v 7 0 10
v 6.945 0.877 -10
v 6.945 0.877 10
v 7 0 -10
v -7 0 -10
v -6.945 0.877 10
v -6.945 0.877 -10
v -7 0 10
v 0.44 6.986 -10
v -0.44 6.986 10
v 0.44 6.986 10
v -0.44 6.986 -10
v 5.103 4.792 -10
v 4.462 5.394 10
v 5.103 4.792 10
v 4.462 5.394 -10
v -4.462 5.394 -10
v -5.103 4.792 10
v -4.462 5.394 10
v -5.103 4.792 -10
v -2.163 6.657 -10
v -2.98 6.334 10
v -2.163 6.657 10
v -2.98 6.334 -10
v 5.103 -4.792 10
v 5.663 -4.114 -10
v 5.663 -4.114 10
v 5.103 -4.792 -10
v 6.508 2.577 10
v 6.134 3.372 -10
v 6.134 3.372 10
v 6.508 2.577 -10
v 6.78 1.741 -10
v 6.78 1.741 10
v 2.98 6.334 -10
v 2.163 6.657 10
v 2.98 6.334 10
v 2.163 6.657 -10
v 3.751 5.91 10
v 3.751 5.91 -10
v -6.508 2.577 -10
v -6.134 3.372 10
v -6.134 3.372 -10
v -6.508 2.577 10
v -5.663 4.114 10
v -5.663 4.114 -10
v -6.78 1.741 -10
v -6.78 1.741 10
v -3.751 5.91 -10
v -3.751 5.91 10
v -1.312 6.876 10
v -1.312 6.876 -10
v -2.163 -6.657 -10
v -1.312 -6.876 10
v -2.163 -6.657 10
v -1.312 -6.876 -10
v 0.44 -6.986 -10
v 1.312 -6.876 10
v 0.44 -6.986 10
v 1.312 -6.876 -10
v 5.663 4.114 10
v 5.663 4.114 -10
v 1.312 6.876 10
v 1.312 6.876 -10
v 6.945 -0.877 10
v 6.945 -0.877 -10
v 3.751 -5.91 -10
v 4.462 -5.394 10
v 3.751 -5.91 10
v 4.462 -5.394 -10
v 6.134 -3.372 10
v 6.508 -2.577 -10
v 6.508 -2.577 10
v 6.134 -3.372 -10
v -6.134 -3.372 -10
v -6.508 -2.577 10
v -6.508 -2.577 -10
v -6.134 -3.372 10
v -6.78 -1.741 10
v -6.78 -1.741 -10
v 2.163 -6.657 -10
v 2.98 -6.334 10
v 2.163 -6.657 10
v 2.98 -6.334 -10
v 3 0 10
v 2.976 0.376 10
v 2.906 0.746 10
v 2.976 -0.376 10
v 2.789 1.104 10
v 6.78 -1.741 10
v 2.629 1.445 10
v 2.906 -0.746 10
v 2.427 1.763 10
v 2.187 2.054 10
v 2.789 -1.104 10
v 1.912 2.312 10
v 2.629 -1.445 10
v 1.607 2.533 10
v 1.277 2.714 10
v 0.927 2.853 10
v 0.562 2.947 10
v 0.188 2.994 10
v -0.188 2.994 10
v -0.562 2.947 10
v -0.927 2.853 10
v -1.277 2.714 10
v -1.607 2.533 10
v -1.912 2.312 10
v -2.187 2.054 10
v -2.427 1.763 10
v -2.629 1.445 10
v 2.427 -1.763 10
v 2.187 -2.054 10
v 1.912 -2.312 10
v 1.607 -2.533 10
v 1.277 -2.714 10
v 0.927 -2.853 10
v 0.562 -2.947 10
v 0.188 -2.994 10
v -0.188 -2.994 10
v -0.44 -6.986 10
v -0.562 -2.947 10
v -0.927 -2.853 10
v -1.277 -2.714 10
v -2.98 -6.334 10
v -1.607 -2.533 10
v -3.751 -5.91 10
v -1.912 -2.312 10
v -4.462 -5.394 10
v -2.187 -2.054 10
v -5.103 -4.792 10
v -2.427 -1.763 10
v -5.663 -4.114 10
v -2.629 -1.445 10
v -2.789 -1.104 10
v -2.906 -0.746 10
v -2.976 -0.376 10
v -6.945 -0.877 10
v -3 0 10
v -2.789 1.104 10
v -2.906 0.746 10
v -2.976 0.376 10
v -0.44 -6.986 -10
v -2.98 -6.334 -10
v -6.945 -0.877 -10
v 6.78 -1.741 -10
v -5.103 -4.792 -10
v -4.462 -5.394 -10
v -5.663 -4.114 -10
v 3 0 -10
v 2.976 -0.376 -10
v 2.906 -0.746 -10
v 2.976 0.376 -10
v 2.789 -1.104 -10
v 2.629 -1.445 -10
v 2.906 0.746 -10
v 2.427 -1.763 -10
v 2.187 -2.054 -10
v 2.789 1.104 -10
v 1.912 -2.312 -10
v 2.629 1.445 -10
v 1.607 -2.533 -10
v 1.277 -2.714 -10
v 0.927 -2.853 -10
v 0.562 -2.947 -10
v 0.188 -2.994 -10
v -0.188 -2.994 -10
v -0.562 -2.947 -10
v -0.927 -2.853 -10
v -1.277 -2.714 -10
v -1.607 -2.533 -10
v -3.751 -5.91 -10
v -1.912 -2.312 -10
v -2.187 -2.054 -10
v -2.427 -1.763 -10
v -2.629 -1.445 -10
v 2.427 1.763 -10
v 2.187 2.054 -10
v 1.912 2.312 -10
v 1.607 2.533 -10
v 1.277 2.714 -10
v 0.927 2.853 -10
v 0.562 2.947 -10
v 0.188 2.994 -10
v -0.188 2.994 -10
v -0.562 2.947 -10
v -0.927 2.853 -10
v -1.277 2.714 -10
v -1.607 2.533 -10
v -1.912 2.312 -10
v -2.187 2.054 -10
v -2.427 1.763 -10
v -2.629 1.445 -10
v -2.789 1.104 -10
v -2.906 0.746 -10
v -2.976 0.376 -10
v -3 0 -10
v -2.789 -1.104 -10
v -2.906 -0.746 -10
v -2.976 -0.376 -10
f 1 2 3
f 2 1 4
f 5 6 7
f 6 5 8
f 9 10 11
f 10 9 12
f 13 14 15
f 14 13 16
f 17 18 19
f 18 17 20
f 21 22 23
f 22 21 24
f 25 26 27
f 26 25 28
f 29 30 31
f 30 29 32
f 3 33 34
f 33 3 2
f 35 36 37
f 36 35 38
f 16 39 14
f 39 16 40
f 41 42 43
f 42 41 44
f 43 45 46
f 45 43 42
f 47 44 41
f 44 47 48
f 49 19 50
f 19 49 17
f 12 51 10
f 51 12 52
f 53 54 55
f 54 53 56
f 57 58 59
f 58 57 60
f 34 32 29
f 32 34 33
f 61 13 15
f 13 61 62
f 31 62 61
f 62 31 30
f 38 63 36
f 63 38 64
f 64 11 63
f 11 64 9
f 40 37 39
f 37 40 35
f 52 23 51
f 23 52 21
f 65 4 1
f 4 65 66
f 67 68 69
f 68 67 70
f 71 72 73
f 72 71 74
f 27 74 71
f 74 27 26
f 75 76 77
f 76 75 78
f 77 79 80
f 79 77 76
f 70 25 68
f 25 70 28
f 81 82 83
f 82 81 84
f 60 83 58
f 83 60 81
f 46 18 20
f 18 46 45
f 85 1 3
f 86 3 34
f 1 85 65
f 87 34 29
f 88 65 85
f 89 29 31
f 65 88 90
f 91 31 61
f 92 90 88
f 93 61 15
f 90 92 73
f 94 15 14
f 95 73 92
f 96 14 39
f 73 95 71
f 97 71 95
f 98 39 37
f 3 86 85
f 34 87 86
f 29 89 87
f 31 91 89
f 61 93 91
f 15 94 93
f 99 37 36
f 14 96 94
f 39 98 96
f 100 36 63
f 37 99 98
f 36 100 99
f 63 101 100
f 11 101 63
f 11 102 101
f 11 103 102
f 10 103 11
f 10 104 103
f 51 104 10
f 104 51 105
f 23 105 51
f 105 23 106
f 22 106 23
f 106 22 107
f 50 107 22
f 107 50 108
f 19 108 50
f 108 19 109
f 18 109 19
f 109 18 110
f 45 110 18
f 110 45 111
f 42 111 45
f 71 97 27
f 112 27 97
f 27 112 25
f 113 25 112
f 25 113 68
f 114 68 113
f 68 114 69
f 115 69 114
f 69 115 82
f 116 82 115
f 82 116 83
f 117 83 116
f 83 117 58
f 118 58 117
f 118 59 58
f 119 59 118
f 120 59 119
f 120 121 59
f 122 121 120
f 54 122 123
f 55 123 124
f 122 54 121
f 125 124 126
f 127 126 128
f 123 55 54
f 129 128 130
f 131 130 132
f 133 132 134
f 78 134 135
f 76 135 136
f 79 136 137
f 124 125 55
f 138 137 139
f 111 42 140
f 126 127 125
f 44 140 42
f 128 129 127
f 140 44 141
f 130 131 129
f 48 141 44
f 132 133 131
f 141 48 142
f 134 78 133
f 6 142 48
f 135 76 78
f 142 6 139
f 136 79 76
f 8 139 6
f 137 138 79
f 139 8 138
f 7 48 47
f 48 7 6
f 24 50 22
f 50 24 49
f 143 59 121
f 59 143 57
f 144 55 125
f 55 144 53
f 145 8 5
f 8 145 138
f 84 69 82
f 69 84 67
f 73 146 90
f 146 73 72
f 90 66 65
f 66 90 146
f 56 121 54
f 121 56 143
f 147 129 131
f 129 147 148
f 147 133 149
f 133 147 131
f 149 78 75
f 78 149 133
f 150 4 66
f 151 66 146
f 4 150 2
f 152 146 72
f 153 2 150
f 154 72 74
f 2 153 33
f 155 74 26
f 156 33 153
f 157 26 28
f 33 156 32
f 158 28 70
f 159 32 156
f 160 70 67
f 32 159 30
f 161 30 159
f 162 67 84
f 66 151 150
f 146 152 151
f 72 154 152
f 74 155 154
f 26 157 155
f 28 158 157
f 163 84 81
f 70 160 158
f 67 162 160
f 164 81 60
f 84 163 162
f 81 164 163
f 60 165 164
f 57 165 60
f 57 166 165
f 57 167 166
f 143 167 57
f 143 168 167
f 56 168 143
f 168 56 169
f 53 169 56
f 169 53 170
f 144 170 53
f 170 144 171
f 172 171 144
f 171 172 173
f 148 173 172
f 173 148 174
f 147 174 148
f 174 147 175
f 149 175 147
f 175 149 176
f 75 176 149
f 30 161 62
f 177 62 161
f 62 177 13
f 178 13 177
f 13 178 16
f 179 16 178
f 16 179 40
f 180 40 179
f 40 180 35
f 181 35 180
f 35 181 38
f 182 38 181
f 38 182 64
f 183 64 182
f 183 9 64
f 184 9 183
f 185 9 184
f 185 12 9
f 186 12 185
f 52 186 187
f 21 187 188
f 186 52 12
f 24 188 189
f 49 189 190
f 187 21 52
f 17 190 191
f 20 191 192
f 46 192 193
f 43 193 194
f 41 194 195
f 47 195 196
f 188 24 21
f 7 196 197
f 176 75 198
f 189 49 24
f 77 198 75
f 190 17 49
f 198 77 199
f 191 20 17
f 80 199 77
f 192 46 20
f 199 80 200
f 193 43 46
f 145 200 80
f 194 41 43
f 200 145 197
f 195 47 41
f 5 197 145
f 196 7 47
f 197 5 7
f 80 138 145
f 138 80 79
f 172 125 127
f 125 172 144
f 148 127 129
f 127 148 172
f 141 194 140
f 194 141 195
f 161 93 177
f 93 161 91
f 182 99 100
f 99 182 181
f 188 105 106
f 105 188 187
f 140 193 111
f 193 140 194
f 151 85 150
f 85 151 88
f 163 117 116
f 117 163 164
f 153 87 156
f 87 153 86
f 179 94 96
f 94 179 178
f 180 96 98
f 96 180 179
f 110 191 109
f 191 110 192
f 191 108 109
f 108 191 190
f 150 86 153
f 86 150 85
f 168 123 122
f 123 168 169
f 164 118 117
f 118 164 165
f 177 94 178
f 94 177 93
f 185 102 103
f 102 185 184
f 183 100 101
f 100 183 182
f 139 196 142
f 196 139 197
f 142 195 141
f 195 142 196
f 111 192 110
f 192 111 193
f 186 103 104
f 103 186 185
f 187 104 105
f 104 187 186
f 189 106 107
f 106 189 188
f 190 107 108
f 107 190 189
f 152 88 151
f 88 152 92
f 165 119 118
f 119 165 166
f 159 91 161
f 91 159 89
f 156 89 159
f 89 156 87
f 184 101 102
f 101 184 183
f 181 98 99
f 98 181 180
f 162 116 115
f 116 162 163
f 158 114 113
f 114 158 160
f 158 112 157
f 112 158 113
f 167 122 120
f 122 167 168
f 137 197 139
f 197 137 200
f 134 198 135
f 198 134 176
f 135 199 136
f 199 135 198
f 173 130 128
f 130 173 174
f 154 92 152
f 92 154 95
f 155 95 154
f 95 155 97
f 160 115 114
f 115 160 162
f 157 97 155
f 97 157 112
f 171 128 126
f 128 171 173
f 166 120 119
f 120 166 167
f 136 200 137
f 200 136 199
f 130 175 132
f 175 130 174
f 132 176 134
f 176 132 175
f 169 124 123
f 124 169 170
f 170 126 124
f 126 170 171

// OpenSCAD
$fn = 50;


difference() {
	union() {
		translate(v = [0, 0, -10.0000000000]) {
			cylinder(h = 20, r = 7.0000000000);
		}
	}
	union() {
		translate(v = [0, 0, -100.0000000000]) {
			cylinder(h = 200, r = 3.0000000000);
		}
	}
}
